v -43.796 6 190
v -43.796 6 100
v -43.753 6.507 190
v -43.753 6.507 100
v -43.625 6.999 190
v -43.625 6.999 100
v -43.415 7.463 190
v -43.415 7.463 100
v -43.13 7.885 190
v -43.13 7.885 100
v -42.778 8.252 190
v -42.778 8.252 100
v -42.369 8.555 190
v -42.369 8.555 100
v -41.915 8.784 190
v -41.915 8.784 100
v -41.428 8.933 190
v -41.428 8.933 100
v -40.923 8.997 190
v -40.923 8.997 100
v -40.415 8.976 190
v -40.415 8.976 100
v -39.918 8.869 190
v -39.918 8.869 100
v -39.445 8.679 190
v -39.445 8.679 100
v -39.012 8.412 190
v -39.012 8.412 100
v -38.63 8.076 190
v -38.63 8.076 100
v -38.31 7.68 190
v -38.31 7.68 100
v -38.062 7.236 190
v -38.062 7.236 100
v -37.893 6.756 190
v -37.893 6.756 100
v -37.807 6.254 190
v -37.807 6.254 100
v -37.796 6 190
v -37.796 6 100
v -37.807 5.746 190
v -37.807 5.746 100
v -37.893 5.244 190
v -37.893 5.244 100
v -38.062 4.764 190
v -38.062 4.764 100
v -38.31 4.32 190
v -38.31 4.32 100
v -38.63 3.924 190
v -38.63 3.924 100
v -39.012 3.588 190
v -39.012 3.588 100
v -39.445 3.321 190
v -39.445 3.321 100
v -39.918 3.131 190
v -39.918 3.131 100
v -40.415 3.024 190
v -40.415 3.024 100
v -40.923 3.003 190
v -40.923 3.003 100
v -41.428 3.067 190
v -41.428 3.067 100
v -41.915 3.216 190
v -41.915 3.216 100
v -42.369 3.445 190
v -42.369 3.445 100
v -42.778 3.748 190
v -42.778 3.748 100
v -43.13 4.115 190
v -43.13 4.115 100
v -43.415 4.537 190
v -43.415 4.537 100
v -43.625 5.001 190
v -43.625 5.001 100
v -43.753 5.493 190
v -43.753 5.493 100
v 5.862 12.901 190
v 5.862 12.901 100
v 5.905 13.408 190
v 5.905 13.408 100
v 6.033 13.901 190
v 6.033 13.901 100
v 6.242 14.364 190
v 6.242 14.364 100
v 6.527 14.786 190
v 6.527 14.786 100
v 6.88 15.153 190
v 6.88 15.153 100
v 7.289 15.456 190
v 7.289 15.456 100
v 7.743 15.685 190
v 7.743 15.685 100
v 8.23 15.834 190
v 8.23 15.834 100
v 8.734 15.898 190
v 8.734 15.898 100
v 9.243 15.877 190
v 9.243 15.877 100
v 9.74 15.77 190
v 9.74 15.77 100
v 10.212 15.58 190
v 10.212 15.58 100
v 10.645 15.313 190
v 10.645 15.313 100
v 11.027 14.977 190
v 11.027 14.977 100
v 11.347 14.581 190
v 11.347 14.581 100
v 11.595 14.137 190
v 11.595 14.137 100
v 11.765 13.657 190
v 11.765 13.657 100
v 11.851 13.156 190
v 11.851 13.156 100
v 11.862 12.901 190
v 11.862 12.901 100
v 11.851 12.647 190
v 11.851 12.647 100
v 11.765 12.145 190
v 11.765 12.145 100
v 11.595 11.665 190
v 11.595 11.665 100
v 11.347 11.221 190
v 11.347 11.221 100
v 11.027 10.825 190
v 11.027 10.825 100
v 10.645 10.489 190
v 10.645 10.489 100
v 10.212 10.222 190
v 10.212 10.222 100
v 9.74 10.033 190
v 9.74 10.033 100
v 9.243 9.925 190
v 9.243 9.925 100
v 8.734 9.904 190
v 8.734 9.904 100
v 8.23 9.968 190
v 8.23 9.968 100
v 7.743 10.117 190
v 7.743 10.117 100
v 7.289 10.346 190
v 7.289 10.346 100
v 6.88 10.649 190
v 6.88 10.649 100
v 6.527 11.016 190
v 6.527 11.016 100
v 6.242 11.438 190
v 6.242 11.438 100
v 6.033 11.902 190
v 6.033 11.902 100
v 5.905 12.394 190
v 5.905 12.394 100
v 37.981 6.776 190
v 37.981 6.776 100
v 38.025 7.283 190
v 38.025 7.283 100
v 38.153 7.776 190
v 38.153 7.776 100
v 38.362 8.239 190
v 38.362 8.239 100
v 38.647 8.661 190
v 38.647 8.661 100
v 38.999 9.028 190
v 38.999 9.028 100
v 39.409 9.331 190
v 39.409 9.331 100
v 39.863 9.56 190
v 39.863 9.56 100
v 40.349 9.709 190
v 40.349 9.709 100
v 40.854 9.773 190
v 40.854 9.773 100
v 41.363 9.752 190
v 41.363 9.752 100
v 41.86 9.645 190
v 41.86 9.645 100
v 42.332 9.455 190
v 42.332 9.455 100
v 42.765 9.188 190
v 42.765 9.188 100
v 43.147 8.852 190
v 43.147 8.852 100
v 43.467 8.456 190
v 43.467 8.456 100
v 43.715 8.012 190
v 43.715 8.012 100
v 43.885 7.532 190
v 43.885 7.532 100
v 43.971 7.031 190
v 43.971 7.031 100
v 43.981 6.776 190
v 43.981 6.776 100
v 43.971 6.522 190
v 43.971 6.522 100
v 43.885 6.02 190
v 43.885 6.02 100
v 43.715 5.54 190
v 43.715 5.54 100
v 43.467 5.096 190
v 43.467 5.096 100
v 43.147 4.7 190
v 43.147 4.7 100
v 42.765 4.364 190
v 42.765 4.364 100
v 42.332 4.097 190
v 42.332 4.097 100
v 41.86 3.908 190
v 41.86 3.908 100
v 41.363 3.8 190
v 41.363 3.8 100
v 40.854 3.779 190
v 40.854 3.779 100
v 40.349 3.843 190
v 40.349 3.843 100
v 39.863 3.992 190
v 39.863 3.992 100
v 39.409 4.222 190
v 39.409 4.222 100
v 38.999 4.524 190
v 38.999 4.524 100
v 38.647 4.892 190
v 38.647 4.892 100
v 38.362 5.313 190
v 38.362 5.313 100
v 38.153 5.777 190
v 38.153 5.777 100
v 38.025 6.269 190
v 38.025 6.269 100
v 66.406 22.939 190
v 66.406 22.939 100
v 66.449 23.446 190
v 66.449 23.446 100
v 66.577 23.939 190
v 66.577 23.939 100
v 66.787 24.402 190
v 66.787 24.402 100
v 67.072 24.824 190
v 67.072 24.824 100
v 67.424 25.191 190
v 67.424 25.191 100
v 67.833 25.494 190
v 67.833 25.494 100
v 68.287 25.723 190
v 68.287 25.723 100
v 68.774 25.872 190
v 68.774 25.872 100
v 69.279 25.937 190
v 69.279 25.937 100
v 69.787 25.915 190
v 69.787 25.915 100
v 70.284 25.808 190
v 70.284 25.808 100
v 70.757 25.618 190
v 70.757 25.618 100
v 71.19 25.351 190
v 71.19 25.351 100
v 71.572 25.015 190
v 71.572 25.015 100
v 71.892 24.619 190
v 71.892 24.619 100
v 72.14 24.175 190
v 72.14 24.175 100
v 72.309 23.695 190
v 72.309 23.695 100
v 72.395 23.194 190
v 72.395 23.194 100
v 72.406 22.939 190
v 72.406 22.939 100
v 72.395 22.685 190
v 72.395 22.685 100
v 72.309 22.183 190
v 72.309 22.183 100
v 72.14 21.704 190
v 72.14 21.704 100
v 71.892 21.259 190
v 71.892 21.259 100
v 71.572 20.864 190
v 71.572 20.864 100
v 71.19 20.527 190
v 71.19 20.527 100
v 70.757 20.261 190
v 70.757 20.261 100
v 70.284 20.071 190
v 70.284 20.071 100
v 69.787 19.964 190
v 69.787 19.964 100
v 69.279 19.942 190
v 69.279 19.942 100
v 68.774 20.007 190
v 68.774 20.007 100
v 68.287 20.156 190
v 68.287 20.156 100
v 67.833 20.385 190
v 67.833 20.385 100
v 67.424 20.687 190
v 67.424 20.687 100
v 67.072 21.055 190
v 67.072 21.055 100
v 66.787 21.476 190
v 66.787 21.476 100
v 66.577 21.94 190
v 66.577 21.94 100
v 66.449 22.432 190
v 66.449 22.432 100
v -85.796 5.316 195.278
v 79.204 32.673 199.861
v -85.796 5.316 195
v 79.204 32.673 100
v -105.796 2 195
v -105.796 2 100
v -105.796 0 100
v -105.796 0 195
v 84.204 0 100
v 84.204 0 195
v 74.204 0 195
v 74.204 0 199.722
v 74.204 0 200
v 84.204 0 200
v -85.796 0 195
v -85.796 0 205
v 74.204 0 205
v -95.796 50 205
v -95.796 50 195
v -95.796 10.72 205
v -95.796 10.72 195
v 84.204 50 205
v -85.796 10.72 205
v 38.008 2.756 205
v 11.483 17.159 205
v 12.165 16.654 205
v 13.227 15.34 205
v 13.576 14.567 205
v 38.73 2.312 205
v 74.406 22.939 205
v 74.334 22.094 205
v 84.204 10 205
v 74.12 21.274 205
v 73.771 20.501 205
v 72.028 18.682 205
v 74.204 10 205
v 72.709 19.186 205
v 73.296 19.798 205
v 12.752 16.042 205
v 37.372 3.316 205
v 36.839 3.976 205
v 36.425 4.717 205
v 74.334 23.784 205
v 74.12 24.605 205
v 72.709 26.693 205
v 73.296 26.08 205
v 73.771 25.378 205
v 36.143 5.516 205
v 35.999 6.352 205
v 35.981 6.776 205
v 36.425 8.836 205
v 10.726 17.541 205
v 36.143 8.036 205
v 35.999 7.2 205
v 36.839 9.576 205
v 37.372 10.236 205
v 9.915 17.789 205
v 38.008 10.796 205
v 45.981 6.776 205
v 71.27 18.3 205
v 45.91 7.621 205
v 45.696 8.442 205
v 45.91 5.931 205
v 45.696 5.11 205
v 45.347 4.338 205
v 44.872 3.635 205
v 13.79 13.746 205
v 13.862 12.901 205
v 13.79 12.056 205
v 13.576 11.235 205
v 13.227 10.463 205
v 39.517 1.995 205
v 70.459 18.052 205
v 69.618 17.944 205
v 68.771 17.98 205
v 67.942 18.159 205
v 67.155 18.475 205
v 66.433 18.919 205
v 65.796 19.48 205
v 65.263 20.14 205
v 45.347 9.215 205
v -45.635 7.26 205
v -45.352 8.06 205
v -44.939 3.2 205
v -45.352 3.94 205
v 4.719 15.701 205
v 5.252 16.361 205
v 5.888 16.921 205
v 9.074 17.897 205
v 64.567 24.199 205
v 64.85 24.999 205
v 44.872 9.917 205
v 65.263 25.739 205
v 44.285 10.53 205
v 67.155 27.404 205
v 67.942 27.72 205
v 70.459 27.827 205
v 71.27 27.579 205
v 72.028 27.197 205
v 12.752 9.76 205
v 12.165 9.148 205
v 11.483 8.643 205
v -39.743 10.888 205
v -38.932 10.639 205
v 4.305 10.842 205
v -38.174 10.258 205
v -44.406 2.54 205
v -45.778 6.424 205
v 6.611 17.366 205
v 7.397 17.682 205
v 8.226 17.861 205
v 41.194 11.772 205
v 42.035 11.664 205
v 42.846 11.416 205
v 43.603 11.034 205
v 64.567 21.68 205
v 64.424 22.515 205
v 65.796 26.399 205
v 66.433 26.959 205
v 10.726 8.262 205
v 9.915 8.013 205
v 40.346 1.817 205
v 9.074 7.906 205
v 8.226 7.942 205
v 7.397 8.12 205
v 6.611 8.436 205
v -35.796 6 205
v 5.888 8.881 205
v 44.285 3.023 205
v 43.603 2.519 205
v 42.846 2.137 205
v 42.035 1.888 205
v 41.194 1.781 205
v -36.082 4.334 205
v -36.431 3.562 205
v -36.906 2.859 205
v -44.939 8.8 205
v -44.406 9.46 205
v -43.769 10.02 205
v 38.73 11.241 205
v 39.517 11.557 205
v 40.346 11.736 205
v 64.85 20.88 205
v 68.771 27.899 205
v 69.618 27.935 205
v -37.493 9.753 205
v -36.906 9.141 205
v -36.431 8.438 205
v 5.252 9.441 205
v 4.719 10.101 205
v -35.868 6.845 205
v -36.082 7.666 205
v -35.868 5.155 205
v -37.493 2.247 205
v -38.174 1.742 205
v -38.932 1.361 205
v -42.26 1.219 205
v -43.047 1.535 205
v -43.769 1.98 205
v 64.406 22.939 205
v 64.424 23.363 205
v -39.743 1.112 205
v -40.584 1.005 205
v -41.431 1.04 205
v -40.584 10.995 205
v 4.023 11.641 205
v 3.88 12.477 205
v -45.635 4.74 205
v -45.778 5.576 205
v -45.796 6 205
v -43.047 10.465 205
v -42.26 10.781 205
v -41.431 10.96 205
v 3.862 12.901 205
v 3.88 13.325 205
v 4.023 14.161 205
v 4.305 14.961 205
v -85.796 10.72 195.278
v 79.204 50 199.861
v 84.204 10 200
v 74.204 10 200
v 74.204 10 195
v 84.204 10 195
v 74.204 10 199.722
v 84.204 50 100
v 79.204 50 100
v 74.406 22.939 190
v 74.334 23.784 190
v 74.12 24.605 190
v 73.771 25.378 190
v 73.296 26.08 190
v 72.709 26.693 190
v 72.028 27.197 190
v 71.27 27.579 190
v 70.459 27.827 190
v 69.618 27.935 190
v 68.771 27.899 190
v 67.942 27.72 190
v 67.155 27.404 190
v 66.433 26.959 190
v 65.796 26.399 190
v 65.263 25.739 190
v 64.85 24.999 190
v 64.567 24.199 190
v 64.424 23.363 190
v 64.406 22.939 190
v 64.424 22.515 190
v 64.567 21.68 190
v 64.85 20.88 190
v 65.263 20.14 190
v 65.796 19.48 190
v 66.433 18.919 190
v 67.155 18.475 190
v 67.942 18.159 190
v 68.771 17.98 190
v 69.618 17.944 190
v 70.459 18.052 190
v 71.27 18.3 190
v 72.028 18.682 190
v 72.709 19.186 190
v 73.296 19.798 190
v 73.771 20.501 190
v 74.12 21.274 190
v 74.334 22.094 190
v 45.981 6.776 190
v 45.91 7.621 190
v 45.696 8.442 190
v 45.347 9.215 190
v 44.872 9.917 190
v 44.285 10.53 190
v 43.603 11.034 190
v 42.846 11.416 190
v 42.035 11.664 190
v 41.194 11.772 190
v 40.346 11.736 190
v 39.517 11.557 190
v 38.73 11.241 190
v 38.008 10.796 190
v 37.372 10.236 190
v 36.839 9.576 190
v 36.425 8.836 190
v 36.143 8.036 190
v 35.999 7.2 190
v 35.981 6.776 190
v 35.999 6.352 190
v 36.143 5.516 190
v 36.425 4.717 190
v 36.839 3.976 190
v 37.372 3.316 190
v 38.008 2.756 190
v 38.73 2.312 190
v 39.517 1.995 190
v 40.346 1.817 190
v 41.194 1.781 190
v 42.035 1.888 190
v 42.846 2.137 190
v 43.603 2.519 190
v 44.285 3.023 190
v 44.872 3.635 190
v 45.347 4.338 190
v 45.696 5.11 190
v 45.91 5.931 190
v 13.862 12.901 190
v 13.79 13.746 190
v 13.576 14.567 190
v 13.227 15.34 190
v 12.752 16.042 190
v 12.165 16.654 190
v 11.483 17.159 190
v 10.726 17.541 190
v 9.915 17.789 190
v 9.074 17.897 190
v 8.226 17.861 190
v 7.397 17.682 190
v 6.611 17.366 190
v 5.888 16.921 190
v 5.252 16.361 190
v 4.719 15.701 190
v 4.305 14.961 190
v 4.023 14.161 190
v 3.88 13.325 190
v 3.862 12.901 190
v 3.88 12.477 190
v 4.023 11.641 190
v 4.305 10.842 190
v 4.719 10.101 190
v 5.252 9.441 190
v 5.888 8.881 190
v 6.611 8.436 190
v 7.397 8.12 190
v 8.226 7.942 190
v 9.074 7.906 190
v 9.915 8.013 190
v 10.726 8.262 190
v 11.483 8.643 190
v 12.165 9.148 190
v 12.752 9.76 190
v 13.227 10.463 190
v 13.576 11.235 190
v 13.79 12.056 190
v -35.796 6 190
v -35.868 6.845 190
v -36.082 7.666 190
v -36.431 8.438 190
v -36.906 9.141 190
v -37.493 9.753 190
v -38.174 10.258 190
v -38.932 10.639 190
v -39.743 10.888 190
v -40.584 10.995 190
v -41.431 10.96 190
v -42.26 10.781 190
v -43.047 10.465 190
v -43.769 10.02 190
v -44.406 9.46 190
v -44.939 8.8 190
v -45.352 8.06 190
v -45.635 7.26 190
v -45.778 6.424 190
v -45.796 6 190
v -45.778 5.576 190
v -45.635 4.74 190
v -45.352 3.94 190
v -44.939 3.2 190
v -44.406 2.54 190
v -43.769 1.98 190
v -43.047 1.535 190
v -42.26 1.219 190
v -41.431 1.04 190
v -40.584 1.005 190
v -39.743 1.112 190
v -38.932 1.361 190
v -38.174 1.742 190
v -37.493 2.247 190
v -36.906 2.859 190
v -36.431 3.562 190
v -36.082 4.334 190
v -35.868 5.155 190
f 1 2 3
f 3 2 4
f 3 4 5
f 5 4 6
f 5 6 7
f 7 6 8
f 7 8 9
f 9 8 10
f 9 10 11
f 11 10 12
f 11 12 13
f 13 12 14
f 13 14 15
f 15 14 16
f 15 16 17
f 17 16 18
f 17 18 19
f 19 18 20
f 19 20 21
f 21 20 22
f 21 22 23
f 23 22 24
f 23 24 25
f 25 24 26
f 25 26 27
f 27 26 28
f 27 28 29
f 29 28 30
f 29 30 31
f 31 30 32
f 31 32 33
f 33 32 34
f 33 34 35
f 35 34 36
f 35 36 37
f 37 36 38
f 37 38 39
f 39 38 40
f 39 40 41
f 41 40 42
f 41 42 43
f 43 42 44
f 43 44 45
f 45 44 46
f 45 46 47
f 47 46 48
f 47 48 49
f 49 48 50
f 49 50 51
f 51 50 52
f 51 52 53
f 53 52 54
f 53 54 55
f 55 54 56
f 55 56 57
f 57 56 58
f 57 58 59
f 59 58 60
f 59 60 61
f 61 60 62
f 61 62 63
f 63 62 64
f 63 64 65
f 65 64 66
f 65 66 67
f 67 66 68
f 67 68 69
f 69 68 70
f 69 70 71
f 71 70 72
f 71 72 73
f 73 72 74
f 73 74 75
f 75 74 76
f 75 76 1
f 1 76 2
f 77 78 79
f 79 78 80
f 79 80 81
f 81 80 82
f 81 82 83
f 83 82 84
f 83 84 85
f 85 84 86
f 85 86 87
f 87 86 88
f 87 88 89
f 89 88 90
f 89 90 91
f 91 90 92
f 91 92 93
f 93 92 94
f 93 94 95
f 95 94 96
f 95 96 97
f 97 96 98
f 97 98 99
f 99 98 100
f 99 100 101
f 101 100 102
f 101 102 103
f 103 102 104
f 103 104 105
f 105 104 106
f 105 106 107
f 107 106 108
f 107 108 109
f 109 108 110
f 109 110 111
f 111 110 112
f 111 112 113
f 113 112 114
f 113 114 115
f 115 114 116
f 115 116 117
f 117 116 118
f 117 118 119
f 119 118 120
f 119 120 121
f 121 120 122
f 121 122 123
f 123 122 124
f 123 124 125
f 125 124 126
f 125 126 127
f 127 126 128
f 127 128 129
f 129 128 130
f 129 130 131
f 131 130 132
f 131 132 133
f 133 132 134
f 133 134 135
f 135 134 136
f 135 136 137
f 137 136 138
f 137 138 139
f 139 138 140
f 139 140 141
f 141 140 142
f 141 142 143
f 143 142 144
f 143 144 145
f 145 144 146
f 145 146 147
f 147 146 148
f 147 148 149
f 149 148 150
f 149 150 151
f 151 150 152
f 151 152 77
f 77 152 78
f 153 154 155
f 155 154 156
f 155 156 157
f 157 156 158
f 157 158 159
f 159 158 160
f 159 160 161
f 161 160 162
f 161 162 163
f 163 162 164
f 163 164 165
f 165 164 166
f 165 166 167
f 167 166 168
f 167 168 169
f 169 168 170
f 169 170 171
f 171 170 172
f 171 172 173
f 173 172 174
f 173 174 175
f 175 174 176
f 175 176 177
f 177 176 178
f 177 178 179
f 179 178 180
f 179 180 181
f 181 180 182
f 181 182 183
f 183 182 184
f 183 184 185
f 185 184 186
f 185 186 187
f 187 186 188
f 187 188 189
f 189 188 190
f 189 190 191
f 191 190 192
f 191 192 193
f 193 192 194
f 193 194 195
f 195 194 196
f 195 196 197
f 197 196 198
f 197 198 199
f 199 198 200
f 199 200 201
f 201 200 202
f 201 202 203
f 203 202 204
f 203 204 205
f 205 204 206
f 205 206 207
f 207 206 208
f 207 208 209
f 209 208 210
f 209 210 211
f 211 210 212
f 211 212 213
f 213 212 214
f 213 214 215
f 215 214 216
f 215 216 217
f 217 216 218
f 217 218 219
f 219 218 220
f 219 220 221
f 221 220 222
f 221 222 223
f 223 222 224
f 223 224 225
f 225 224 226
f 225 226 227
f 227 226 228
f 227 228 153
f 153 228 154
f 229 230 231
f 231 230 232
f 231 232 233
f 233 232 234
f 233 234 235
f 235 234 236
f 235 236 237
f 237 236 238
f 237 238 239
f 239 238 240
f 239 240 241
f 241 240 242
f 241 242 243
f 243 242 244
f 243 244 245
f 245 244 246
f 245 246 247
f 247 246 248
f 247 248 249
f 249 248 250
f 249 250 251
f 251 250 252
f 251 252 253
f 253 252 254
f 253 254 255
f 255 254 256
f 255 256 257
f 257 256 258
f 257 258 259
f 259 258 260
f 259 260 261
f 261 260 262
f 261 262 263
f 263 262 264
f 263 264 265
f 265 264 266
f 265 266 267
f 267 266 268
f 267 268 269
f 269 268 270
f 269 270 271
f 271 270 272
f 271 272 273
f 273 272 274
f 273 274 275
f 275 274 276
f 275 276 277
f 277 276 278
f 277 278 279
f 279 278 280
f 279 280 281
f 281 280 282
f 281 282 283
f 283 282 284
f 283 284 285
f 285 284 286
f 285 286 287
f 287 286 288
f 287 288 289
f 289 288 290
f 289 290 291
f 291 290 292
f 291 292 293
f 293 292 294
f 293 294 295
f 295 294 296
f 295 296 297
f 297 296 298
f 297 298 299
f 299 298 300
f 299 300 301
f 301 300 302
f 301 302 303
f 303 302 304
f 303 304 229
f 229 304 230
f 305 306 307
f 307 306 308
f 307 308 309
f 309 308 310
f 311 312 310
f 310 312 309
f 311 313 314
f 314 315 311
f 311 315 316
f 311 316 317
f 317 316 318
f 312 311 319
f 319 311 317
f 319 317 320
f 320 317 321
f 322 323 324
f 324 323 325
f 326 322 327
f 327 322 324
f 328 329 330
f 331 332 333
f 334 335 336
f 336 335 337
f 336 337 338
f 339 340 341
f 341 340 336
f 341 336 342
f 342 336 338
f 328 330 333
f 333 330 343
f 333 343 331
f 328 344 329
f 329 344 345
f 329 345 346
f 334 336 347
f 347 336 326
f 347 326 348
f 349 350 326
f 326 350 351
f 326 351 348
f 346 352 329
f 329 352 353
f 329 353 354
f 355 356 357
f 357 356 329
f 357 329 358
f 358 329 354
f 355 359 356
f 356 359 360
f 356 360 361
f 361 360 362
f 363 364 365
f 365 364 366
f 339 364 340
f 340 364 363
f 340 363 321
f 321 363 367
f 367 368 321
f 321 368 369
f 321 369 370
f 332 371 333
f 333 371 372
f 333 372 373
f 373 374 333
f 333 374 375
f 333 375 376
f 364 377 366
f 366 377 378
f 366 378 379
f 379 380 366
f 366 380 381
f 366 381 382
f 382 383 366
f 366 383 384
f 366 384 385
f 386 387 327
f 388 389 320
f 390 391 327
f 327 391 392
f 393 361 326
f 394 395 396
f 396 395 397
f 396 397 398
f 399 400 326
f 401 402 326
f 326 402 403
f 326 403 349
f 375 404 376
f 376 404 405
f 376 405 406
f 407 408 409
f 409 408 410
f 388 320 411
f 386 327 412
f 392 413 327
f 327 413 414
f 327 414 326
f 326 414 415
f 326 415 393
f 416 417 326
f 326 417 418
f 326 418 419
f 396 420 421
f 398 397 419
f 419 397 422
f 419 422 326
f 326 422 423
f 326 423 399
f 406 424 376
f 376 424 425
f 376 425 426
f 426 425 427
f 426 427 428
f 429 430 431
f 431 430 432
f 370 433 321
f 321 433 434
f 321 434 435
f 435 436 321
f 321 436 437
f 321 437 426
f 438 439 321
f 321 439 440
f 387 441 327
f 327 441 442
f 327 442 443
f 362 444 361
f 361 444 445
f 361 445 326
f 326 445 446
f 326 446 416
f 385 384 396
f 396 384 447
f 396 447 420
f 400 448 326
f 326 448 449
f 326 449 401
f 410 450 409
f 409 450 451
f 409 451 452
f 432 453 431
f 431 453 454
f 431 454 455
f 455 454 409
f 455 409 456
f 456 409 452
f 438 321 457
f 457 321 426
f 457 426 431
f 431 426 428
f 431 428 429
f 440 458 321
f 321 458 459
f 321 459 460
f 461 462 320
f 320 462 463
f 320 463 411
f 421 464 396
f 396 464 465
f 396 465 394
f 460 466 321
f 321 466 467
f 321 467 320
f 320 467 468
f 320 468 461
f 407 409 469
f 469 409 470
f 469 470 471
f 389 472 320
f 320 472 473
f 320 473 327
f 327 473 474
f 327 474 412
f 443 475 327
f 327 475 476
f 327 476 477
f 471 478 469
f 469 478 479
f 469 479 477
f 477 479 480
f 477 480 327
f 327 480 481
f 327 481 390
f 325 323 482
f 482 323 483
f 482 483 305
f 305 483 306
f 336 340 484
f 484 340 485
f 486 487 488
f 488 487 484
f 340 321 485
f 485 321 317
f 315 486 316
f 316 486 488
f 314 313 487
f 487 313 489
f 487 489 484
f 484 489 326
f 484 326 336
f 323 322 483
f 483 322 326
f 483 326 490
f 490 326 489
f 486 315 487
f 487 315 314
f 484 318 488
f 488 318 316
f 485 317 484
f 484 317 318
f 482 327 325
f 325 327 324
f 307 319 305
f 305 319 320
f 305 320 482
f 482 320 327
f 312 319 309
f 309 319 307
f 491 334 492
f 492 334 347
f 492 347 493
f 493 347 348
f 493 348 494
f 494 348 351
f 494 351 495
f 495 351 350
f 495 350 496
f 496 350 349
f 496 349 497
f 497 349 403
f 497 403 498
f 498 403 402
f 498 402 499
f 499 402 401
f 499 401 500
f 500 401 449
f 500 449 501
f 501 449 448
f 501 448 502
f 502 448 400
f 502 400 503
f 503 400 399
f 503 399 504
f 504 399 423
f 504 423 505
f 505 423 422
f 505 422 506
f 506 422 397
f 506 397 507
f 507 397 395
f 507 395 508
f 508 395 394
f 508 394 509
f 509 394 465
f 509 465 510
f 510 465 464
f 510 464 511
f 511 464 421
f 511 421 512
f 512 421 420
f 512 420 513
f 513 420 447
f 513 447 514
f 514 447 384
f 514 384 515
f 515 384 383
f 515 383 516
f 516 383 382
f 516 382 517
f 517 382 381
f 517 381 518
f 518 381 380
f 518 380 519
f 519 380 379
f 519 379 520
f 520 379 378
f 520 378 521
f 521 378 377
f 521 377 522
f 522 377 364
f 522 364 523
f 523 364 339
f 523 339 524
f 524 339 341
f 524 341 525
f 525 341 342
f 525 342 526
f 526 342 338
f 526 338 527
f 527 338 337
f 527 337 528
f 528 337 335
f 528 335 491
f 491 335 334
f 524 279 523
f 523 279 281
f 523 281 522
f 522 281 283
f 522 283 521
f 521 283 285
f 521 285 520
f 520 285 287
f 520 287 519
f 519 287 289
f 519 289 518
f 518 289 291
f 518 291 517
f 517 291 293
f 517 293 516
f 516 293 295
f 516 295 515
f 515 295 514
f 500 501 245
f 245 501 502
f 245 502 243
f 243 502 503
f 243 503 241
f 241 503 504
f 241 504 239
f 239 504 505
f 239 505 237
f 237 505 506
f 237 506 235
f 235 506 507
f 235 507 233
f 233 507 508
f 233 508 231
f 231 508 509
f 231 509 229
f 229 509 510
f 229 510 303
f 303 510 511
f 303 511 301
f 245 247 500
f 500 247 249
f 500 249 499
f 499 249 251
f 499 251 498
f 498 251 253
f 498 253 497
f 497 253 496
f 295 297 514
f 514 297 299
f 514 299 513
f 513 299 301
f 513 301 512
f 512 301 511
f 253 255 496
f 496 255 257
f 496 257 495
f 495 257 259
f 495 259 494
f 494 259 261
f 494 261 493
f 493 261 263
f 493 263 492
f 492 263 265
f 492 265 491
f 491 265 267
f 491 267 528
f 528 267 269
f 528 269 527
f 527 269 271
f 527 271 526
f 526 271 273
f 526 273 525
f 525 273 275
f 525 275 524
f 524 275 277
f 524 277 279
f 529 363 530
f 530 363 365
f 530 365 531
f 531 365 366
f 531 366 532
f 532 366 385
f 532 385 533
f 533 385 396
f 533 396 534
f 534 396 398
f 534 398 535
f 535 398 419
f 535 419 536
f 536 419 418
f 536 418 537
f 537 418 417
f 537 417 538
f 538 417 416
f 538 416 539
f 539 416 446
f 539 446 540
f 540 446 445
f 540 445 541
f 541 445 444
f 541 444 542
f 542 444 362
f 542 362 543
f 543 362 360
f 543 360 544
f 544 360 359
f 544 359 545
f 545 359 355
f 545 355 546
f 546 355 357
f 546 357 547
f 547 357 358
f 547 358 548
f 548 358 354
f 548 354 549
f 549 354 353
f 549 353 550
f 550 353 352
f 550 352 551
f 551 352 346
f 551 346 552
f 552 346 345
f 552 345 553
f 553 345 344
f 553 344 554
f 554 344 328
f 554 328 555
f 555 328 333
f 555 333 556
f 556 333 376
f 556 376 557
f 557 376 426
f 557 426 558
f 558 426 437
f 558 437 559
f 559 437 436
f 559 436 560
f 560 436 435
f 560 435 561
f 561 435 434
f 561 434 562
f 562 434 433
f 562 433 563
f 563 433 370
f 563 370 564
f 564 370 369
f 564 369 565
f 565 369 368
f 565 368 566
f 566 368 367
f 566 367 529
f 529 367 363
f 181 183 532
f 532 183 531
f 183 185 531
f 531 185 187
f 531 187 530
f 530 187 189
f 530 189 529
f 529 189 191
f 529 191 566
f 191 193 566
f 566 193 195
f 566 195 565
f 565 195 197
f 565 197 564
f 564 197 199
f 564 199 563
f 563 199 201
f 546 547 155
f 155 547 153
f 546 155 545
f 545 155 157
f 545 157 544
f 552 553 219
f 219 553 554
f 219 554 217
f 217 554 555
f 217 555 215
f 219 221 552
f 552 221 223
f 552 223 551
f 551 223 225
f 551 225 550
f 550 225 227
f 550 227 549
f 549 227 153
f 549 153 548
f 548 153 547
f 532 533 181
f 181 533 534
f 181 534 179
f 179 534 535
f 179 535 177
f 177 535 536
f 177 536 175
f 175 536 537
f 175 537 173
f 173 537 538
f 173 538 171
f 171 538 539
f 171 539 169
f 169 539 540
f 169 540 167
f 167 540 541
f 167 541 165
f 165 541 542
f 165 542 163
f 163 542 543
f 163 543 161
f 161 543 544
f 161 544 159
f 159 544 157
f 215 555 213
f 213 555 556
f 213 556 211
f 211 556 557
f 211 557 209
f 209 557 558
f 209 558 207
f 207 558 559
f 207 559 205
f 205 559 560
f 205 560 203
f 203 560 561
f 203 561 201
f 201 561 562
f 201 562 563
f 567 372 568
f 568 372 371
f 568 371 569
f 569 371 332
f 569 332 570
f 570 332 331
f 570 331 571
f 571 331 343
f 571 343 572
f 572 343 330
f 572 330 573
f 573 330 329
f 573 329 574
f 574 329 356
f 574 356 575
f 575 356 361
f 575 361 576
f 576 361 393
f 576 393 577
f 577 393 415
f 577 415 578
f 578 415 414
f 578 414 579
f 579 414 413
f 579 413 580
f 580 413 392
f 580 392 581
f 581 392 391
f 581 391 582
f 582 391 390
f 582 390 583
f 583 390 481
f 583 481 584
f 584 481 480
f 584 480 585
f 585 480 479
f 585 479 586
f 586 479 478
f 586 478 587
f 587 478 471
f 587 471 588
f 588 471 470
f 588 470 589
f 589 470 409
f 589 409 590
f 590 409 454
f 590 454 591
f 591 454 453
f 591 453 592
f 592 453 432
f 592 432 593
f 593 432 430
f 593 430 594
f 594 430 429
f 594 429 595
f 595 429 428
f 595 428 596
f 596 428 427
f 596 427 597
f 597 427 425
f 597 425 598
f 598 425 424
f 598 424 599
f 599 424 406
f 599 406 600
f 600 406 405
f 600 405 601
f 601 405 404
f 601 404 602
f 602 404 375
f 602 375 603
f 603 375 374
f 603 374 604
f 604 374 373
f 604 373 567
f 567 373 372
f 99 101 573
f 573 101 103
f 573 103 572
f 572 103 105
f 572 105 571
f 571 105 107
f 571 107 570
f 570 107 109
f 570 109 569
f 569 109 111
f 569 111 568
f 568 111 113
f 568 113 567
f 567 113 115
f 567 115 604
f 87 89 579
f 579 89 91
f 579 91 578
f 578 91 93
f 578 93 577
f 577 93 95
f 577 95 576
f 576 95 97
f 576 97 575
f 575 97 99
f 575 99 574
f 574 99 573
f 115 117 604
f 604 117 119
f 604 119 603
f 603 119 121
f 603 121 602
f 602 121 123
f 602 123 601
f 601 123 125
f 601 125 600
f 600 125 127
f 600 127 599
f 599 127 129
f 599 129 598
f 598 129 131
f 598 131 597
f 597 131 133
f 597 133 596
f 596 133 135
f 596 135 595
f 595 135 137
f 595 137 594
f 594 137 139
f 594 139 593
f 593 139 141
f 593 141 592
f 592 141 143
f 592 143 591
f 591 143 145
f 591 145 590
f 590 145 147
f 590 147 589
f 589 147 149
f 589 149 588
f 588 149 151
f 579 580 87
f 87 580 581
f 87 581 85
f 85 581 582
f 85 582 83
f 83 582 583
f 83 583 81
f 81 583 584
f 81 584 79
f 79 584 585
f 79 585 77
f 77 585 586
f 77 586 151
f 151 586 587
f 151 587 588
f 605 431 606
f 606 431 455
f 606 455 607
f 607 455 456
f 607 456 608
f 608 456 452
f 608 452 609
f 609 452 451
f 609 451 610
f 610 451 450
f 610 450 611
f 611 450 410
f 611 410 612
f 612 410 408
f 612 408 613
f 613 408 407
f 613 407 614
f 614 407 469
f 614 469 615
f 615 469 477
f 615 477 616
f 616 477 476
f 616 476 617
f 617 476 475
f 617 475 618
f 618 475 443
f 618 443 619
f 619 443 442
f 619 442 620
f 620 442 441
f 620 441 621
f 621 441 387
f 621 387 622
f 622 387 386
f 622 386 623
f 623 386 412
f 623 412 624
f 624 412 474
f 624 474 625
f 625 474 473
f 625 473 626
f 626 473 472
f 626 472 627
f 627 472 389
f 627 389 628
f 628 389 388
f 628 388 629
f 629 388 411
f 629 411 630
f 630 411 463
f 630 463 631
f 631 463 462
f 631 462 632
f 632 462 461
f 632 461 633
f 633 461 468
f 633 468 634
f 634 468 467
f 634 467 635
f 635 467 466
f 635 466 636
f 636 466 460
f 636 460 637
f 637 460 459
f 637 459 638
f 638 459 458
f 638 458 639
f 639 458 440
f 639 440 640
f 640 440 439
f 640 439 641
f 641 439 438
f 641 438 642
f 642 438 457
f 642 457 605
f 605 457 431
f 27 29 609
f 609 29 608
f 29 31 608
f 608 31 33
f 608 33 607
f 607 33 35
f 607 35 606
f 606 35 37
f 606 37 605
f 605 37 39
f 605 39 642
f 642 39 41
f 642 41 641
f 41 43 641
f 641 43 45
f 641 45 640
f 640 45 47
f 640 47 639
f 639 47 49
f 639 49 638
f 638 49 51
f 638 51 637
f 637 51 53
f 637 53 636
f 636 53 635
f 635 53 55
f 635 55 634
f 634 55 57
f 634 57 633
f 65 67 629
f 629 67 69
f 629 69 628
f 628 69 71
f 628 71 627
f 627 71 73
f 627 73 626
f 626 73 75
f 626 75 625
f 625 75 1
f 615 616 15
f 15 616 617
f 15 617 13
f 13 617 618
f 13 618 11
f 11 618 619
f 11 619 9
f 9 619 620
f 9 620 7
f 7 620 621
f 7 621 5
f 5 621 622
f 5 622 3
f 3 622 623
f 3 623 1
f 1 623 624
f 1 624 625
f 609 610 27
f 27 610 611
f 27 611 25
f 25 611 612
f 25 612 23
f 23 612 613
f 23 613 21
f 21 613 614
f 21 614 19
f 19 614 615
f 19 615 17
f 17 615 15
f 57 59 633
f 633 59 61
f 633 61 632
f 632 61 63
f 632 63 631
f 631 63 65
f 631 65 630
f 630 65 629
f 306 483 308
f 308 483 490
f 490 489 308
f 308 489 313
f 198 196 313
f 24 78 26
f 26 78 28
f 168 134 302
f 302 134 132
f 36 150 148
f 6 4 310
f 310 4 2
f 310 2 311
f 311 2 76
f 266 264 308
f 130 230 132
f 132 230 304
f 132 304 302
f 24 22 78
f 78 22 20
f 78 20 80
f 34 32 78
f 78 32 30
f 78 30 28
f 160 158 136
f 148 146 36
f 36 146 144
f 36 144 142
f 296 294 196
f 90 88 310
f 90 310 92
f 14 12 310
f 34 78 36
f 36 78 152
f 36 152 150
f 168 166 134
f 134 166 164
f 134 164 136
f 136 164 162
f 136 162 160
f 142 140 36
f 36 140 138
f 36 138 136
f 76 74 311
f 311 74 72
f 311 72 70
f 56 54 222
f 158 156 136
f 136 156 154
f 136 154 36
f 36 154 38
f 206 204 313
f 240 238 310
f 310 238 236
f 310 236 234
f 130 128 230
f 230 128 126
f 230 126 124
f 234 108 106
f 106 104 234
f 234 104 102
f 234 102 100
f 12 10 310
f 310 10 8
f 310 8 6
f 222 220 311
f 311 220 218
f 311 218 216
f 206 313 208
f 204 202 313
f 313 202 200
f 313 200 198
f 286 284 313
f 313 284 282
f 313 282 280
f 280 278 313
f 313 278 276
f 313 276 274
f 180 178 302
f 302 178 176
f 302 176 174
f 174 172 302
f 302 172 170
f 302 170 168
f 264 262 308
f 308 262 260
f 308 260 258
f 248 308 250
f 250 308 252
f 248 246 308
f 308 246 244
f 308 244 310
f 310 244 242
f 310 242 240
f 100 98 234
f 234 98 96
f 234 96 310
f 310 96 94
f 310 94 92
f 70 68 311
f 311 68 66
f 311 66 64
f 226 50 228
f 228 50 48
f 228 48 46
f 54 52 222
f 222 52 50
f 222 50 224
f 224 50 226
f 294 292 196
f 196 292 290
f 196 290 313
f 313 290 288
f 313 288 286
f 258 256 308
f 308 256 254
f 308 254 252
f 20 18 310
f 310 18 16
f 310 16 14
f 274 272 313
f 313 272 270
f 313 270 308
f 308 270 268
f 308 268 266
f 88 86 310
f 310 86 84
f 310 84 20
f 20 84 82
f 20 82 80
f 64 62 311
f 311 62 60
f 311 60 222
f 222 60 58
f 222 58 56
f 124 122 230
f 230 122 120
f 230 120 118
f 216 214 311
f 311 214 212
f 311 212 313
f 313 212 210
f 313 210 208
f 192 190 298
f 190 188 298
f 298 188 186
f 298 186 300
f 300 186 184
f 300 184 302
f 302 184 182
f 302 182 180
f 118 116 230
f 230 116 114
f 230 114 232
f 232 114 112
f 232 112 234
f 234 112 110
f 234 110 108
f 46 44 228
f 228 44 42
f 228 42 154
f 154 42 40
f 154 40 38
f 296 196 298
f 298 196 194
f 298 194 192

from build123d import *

# Parameters (mm, degrees)
ESQUISSE1_R             = 3
BOSS_EXTRU_1_DEPTH      = 200
ESQUISSE4_W             = 5
ESQUISSE4_H             = 50
BOSS_EXTRU_4_DEPTH      = 180
BOSS_EXTRU_7_DEPTH      = 50
ESQUISSE6_W             = 20
ESQUISSE6_H             = 10.719834163
ENL_V_MAT_EXTRU_2_DEPTH = 10
ESQUISSE5_W             = 10
ESQUISSE5_H             = 10
ENL_V_MAT_EXTRU_1_DEPTH = 10
ESQUISSE14_R            = 5
ENL_V_MAT_EXTRU_4_DEPTH = 15
BOSS_EXTRU_8_REACH      = 242.401
ESQUISSE16_W            = 210.874992539
ESQUISSE16_H            = 82.741703247
ENL_V_MAT_EXTRU_5_DEPTH = 130


with BuildPart() as part:
    # Esquisse1 → Boss.-Extru.1 (new body)
    with BuildSketch(Plane.XY):
        Polygon((-105.796013405, 0), (84.203986595, 0), (84.203986595, 33.502126335), (-105.796013405, 2), align=None)
        with Locations((69.406004871, 22.939397164)):
            Circle(ESQUISSE1_R, mode=Mode.SUBTRACT)
        with Locations((40.981469067, 6.77616521)):
            Circle(ESQUISSE1_R, mode=Mode.SUBTRACT)
        with Locations((-40.796013405, 6)):
            Circle(ESQUISSE1_R, mode=Mode.SUBTRACT)
        with Locations((8.861542866, 12.901085106)):
            Circle(ESQUISSE1_R, mode=Mode.SUBTRACT)
    extrude(amount=BOSS_EXTRU_1_DEPTH)

    # Esquisse4 → Boss.-Extru.4 (add)
    with BuildSketch(Plane(origin=(84.203986595, 0, 0), x_dir=(0, 0, -1), z_dir=(1, 0, 0))):
        with Locations((-202.5, 25)):
            Rectangle(ESQUISSE4_W, ESQUISSE4_H)
        with Locations((2.5, 25)):
            Rectangle(ESQUISSE4_W, ESQUISSE4_H)
    extrude(amount=-BOSS_EXTRU_4_DEPTH)

    # Esquisse8 → Boss.-Extru.7 (add)
    with BuildSketch(Plane(origin=(0, 50, 0), x_dir=(1, 0, 0), z_dir=(0, 1, 0))):
        Polygon((84.203986595, 0), (-95.796013405, 0), (-95.796013405, -5), align=None)
    boss_extru_7 = extrude(amount=-BOSS_EXTRU_7_DEPTH)

    # Esquisse6 → Enlèv. mat.-Extru.2 (cut)
    with BuildSketch(Plane(origin=(0, 0, -5), x_dir=(-1, 0, 0), z_dir=(0, 0, -1))):
        with Locations((95.796013405, 5.359917081)):
            Rectangle(ESQUISSE6_W, ESQUISSE6_H)
    enl_v_mat_extru_2 = extrude(amount=-ENL_V_MAT_EXTRU_2_DEPTH, mode=Mode.SUBTRACT)

    # Esquisse5 → Enlèv. mat.-Extru.1 (cut)
    with BuildSketch(Plane(origin=(84.203986595, 0, 0), x_dir=(0, 0, -1), z_dir=(1, 0, 0))):
        with Locations((-200, 5)):
            Rectangle(ESQUISSE5_W, ESQUISSE5_H)
        with Locations((0, 5)):
            Rectangle(ESQUISSE5_W, ESQUISSE5_H)
    extrude(amount=-ENL_V_MAT_EXTRU_1_DEPTH, mode=Mode.SUBTRACT)

    # Esquisse14 → Enlèv. mat.-Extru.4 (cut)
    with BuildSketch(Plane(origin=(0, 0, -5), x_dir=(-1, 0, 0), z_dir=(0, 0, -1))):
        with Locations((-69.406004871, 22.939397164)):
            Circle(ESQUISSE14_R)
        with Locations((-40.981469067, 6.77616521)):
            Circle(ESQUISSE14_R)
        with Locations((-8.861542866, 12.901085106)):
            Circle(ESQUISSE14_R)
        with Locations((40.796013405, 6)):
            Circle(ESQUISSE14_R)
    enl_v_mat_extru_4 = extrude(amount=-ENL_V_MAT_EXTRU_4_DEPTH, mode=Mode.SUBTRACT)

    # Symétrie3: Boss.-Extru.7, Enlèv. mat.-Extru.2, Enlèv. mat.-Extru.4 across plane
    add(boss_extru_7.mirror(Plane(origin=(0, 0, 100), x_dir=(1, 0, 0), z_dir=(0, 0, -1))))
    add(enl_v_mat_extru_2.mirror(Plane(origin=(0, 0, 100), x_dir=(1, 0, 0), z_dir=(0, 0, -1))), mode=Mode.SUBTRACT)
    add(enl_v_mat_extru_4.mirror(Plane(origin=(0, 0, 100), x_dir=(1, 0, 0), z_dir=(0, 0, -1))), mode=Mode.SUBTRACT)

    # Boss.-Extru.8: up to this plane
    boss_extru_8_end = Plane(origin=(-95.796013405, -180.069431054, 195), z_dir=(-0.0277670672403533, 0, 0.9996144206527183))
    # Esquisse15 → Boss.-Extru.8 (add, up to the surface)
    with BuildSketch(Plane(origin=(0, 0, -5), x_dir=(-1, 0, 0), z_dir=(0, 0, -1)), mode=Mode.PRIVATE) as boss_extru_8_sk1:
        Polygon((-84.203986595, 33.502126335), (-79.203986595, 32.67312301), (-79.203986595, 50), (-84.203986595, 50), align=None)
    boss_extru_8_tool1 = split(extrude(boss_extru_8_sk1.sketch, amount=-BOSS_EXTRU_8_REACH, mode=Mode.PRIVATE), bisect_by=boss_extru_8_end, keep=Keep.BOTH, mode=Mode.PRIVATE)
    add(boss_extru_8_tool1.solids().sort_by_distance((81.683563, 41.542119, -5))[0])

    # Esquisse16 → Enlèv. mat.-Extru.5 (cut)
    with BuildSketch(Plane(origin=(0, 0, 100), x_dir=(-1, 0, 0), z_dir=(0, 0, -1))):
        with Locations((5.796013405, 25.200829376)):
            Rectangle(ESQUISSE16_W, ESQUISSE16_H)
    extrude(amount=ENL_V_MAT_EXTRU_5_DEPTH, mode=Mode.SUBTRACT)


solid = part.part
